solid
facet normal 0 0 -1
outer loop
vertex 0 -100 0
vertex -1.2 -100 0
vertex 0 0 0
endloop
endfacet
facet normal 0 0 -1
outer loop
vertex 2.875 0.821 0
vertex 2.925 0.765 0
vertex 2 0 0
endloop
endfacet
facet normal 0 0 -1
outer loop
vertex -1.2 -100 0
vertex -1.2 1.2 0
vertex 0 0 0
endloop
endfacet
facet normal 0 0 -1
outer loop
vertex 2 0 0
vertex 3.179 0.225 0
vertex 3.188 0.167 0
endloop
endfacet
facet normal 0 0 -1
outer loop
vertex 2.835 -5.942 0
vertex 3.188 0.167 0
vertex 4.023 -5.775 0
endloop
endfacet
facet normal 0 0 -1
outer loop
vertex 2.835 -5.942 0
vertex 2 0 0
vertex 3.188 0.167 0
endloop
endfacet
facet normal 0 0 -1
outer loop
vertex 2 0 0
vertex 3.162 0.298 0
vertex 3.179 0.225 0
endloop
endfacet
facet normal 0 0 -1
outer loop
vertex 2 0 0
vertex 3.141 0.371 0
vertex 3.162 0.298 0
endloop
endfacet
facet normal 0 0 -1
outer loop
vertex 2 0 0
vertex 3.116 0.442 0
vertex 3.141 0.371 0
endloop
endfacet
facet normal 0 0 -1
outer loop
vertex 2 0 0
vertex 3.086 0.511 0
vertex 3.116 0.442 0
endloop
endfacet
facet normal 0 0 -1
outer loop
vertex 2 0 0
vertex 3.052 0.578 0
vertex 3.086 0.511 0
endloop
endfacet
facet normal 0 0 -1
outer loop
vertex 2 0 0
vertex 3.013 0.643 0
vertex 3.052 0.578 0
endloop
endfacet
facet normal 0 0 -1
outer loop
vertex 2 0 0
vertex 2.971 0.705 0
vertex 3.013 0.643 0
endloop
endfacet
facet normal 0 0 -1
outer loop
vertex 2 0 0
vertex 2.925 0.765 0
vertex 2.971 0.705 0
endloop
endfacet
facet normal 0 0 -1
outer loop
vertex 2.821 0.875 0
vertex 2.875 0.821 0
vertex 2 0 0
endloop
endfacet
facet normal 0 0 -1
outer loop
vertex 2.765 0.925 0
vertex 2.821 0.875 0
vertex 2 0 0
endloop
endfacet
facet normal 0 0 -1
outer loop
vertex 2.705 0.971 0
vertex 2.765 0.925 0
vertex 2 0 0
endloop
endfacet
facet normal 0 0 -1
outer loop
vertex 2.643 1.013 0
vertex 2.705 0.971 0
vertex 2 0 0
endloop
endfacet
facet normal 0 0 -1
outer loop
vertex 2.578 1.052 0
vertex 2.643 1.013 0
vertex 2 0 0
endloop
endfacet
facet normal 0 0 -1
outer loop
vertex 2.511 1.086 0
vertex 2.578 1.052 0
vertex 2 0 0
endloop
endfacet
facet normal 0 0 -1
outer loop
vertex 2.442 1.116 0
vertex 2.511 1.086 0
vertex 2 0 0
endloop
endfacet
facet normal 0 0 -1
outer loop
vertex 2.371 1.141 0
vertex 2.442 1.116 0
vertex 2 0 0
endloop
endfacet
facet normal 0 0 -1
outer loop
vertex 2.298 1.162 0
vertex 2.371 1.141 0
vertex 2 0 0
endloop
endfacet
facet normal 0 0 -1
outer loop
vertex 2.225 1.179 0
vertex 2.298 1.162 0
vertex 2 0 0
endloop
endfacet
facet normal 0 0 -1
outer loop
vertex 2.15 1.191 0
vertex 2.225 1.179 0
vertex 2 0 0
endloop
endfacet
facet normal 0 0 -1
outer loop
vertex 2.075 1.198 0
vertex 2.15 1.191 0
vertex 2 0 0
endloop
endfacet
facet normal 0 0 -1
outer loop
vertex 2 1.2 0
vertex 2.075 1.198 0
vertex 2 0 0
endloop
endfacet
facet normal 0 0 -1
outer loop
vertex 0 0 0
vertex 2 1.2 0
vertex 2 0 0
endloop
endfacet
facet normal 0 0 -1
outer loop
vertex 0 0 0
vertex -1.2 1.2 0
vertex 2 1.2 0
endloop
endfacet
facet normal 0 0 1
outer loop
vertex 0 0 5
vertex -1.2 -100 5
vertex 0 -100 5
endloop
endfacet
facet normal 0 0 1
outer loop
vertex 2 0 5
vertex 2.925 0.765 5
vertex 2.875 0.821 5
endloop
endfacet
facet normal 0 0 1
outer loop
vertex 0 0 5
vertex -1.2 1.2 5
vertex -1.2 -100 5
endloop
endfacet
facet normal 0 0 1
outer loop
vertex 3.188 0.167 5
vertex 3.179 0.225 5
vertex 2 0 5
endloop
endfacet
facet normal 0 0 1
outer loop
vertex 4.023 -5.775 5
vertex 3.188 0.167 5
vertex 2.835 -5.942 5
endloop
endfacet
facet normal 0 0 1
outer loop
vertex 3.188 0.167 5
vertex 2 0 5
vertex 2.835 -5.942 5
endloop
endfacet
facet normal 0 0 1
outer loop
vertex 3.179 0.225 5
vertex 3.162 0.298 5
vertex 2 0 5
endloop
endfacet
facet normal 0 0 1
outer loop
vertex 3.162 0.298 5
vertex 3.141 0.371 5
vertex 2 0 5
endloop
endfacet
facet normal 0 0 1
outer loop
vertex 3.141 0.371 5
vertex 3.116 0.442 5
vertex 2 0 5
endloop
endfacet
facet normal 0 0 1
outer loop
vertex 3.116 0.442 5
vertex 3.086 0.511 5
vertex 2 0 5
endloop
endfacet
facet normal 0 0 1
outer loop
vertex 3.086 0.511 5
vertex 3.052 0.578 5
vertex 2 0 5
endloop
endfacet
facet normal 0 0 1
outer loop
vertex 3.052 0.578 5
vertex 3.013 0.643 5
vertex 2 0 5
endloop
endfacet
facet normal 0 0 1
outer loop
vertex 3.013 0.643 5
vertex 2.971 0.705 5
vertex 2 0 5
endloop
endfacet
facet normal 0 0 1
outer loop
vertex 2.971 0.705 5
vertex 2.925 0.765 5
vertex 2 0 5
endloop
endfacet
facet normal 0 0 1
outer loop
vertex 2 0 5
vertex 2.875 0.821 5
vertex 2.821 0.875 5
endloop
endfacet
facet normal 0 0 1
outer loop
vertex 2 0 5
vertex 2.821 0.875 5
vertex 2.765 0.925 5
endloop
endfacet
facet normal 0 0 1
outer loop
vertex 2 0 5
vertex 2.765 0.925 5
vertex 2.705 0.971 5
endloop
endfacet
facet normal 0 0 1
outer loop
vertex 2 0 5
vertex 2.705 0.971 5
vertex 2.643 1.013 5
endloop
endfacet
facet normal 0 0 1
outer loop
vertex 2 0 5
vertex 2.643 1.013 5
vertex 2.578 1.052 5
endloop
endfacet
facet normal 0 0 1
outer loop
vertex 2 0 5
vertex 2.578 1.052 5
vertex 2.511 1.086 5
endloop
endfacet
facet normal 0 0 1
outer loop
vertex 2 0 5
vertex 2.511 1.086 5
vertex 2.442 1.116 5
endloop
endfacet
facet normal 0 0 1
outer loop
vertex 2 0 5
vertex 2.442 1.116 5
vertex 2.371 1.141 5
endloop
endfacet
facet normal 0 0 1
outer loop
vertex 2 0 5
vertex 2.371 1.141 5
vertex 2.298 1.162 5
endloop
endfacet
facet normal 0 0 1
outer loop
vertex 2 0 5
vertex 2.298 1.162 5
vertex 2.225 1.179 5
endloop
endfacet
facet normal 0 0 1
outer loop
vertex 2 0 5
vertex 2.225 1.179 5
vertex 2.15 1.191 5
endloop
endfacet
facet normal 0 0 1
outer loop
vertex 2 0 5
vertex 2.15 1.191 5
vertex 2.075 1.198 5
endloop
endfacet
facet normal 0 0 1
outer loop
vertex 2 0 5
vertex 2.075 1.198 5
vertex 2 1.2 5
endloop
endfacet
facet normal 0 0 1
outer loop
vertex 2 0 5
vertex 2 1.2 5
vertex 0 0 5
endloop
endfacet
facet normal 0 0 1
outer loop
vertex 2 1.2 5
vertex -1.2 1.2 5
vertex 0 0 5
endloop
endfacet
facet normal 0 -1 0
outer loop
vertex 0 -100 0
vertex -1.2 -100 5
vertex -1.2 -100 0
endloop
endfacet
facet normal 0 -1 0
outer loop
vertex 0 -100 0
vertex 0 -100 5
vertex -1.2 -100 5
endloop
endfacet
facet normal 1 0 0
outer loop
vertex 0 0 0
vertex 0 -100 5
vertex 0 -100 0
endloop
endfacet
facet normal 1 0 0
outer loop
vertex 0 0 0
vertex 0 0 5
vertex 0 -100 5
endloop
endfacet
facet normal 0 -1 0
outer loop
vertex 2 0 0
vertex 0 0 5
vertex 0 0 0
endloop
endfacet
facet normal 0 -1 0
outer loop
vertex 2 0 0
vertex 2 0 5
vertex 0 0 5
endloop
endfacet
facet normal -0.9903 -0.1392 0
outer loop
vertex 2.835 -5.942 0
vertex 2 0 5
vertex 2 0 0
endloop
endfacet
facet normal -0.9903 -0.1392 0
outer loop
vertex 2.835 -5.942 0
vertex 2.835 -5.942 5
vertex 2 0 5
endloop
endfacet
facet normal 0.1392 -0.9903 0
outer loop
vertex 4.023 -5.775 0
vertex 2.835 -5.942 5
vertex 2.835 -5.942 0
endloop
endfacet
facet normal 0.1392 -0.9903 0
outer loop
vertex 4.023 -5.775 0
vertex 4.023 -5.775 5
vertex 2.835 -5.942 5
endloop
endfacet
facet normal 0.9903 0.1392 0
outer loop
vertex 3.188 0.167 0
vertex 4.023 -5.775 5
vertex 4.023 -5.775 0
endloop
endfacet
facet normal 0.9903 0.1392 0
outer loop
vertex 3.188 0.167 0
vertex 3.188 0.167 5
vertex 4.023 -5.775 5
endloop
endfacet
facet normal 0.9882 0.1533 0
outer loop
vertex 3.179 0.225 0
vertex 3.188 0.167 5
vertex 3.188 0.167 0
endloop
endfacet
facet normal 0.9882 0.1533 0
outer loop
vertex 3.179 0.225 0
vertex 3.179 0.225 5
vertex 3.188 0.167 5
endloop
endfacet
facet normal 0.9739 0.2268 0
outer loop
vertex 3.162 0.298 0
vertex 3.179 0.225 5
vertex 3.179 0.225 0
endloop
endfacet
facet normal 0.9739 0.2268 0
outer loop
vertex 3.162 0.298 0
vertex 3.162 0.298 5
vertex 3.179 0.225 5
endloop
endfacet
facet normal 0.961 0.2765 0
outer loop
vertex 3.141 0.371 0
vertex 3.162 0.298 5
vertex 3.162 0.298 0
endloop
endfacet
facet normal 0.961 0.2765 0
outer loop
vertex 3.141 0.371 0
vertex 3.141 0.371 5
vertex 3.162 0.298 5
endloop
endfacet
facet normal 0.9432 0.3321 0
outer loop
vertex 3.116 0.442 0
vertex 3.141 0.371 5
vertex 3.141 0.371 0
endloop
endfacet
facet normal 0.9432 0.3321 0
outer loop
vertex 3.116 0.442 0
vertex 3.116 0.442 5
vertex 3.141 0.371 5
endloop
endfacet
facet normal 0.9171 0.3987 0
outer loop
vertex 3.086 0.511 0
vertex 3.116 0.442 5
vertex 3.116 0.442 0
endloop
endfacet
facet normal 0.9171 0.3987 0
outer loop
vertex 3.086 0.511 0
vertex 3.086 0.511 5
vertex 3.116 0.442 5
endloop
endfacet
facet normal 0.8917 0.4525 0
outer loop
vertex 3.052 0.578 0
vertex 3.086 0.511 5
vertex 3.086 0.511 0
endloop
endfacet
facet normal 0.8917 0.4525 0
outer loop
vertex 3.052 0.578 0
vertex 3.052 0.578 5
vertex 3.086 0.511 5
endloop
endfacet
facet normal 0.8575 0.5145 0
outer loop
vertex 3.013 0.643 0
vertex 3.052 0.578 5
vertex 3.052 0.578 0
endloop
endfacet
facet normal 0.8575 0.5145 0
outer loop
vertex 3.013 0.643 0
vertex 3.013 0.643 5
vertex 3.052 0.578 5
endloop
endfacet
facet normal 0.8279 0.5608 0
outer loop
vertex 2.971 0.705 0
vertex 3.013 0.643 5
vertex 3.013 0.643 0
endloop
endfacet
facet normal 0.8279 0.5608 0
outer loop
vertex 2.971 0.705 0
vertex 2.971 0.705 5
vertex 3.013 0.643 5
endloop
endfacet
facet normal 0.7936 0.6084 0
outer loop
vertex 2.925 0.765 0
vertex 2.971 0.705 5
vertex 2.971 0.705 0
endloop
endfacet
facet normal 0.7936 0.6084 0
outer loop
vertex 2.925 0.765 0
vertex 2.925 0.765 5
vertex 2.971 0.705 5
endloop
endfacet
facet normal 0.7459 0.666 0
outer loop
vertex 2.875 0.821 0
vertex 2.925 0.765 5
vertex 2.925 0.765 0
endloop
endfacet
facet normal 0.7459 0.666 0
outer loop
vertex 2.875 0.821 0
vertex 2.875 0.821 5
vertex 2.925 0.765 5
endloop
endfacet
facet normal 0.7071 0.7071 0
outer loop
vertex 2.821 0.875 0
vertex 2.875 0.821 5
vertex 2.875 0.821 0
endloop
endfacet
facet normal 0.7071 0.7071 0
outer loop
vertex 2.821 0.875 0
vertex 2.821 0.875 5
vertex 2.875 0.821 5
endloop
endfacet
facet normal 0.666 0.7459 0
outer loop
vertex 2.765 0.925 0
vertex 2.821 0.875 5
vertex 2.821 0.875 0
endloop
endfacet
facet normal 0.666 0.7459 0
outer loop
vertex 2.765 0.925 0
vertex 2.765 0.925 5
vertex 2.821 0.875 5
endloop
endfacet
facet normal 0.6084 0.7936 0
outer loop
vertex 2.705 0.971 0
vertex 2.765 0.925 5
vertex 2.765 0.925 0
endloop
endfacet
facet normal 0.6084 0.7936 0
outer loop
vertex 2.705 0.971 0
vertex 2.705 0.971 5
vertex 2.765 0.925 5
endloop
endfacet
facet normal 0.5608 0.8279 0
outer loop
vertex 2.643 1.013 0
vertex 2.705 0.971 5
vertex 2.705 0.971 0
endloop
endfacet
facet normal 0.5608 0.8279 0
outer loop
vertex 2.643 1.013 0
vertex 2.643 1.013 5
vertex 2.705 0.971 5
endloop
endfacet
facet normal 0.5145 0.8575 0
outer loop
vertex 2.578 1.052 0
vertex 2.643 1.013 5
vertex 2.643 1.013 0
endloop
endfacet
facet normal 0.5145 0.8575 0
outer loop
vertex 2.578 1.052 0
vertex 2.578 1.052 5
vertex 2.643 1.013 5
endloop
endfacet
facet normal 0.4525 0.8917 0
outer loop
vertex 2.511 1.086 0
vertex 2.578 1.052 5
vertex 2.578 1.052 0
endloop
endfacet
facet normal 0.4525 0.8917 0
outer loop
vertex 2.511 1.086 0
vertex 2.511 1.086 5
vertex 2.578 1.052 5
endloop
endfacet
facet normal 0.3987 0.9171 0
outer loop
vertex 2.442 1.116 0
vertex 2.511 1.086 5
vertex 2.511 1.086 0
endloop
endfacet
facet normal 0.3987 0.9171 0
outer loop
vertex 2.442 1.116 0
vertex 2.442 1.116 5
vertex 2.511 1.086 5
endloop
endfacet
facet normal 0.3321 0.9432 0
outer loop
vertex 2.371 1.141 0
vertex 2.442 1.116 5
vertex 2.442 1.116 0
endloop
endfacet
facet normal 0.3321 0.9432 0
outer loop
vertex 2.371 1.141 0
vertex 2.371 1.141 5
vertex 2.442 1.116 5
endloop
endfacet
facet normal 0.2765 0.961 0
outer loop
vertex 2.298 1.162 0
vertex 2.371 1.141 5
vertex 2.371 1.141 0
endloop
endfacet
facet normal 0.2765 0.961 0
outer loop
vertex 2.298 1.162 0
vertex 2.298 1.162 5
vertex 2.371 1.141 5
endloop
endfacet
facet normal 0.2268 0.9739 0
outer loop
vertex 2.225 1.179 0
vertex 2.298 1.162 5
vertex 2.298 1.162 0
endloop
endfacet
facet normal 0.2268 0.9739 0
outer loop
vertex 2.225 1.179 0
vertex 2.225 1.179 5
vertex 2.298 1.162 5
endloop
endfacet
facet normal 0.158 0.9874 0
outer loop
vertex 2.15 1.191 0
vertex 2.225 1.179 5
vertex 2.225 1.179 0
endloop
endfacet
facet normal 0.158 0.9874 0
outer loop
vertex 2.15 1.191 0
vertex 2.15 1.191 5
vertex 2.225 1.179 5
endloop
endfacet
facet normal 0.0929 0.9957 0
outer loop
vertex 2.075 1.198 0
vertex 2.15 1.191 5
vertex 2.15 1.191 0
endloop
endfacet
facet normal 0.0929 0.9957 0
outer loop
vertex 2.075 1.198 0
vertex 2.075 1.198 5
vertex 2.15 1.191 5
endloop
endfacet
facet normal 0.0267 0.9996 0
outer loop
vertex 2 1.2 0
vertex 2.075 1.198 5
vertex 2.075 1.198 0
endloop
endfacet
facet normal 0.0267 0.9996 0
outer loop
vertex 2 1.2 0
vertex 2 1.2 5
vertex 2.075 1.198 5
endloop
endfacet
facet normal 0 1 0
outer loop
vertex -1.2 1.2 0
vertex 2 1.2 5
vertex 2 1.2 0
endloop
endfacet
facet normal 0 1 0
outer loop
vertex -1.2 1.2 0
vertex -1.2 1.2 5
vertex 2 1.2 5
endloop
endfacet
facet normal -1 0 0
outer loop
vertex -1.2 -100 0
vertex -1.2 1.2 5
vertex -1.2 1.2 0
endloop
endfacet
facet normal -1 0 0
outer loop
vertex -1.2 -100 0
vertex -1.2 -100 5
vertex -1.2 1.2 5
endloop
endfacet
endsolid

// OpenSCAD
//
// 振り子の棒の部分
//
$fn = 100;

swing_bar();


module swing_bar(
    l = 100,    // 棒の長さ
    w = 5,      // 棒の幅
    t=1.2,      // 厚み
    d=2,        // ひっかける部分の内側厚み
    l2=6,       // ひっかける部分の長さ
    angle=8,    // ひっかける部分の角度
) {
    linear_extrude(height = w) {
        translate([-t,-l,0]) square([t,l]);
        translate([-t,0,0]) square([t+d,t]);
        translate([d,0,0]) rotate([0,0,angle]) translate([0,-l2,0]) square([t,l2]);
        translate([d,0,0]) difference() { circle(r=t); translate([-t,-t,0]) square([t*2, t]);}
    }
}
